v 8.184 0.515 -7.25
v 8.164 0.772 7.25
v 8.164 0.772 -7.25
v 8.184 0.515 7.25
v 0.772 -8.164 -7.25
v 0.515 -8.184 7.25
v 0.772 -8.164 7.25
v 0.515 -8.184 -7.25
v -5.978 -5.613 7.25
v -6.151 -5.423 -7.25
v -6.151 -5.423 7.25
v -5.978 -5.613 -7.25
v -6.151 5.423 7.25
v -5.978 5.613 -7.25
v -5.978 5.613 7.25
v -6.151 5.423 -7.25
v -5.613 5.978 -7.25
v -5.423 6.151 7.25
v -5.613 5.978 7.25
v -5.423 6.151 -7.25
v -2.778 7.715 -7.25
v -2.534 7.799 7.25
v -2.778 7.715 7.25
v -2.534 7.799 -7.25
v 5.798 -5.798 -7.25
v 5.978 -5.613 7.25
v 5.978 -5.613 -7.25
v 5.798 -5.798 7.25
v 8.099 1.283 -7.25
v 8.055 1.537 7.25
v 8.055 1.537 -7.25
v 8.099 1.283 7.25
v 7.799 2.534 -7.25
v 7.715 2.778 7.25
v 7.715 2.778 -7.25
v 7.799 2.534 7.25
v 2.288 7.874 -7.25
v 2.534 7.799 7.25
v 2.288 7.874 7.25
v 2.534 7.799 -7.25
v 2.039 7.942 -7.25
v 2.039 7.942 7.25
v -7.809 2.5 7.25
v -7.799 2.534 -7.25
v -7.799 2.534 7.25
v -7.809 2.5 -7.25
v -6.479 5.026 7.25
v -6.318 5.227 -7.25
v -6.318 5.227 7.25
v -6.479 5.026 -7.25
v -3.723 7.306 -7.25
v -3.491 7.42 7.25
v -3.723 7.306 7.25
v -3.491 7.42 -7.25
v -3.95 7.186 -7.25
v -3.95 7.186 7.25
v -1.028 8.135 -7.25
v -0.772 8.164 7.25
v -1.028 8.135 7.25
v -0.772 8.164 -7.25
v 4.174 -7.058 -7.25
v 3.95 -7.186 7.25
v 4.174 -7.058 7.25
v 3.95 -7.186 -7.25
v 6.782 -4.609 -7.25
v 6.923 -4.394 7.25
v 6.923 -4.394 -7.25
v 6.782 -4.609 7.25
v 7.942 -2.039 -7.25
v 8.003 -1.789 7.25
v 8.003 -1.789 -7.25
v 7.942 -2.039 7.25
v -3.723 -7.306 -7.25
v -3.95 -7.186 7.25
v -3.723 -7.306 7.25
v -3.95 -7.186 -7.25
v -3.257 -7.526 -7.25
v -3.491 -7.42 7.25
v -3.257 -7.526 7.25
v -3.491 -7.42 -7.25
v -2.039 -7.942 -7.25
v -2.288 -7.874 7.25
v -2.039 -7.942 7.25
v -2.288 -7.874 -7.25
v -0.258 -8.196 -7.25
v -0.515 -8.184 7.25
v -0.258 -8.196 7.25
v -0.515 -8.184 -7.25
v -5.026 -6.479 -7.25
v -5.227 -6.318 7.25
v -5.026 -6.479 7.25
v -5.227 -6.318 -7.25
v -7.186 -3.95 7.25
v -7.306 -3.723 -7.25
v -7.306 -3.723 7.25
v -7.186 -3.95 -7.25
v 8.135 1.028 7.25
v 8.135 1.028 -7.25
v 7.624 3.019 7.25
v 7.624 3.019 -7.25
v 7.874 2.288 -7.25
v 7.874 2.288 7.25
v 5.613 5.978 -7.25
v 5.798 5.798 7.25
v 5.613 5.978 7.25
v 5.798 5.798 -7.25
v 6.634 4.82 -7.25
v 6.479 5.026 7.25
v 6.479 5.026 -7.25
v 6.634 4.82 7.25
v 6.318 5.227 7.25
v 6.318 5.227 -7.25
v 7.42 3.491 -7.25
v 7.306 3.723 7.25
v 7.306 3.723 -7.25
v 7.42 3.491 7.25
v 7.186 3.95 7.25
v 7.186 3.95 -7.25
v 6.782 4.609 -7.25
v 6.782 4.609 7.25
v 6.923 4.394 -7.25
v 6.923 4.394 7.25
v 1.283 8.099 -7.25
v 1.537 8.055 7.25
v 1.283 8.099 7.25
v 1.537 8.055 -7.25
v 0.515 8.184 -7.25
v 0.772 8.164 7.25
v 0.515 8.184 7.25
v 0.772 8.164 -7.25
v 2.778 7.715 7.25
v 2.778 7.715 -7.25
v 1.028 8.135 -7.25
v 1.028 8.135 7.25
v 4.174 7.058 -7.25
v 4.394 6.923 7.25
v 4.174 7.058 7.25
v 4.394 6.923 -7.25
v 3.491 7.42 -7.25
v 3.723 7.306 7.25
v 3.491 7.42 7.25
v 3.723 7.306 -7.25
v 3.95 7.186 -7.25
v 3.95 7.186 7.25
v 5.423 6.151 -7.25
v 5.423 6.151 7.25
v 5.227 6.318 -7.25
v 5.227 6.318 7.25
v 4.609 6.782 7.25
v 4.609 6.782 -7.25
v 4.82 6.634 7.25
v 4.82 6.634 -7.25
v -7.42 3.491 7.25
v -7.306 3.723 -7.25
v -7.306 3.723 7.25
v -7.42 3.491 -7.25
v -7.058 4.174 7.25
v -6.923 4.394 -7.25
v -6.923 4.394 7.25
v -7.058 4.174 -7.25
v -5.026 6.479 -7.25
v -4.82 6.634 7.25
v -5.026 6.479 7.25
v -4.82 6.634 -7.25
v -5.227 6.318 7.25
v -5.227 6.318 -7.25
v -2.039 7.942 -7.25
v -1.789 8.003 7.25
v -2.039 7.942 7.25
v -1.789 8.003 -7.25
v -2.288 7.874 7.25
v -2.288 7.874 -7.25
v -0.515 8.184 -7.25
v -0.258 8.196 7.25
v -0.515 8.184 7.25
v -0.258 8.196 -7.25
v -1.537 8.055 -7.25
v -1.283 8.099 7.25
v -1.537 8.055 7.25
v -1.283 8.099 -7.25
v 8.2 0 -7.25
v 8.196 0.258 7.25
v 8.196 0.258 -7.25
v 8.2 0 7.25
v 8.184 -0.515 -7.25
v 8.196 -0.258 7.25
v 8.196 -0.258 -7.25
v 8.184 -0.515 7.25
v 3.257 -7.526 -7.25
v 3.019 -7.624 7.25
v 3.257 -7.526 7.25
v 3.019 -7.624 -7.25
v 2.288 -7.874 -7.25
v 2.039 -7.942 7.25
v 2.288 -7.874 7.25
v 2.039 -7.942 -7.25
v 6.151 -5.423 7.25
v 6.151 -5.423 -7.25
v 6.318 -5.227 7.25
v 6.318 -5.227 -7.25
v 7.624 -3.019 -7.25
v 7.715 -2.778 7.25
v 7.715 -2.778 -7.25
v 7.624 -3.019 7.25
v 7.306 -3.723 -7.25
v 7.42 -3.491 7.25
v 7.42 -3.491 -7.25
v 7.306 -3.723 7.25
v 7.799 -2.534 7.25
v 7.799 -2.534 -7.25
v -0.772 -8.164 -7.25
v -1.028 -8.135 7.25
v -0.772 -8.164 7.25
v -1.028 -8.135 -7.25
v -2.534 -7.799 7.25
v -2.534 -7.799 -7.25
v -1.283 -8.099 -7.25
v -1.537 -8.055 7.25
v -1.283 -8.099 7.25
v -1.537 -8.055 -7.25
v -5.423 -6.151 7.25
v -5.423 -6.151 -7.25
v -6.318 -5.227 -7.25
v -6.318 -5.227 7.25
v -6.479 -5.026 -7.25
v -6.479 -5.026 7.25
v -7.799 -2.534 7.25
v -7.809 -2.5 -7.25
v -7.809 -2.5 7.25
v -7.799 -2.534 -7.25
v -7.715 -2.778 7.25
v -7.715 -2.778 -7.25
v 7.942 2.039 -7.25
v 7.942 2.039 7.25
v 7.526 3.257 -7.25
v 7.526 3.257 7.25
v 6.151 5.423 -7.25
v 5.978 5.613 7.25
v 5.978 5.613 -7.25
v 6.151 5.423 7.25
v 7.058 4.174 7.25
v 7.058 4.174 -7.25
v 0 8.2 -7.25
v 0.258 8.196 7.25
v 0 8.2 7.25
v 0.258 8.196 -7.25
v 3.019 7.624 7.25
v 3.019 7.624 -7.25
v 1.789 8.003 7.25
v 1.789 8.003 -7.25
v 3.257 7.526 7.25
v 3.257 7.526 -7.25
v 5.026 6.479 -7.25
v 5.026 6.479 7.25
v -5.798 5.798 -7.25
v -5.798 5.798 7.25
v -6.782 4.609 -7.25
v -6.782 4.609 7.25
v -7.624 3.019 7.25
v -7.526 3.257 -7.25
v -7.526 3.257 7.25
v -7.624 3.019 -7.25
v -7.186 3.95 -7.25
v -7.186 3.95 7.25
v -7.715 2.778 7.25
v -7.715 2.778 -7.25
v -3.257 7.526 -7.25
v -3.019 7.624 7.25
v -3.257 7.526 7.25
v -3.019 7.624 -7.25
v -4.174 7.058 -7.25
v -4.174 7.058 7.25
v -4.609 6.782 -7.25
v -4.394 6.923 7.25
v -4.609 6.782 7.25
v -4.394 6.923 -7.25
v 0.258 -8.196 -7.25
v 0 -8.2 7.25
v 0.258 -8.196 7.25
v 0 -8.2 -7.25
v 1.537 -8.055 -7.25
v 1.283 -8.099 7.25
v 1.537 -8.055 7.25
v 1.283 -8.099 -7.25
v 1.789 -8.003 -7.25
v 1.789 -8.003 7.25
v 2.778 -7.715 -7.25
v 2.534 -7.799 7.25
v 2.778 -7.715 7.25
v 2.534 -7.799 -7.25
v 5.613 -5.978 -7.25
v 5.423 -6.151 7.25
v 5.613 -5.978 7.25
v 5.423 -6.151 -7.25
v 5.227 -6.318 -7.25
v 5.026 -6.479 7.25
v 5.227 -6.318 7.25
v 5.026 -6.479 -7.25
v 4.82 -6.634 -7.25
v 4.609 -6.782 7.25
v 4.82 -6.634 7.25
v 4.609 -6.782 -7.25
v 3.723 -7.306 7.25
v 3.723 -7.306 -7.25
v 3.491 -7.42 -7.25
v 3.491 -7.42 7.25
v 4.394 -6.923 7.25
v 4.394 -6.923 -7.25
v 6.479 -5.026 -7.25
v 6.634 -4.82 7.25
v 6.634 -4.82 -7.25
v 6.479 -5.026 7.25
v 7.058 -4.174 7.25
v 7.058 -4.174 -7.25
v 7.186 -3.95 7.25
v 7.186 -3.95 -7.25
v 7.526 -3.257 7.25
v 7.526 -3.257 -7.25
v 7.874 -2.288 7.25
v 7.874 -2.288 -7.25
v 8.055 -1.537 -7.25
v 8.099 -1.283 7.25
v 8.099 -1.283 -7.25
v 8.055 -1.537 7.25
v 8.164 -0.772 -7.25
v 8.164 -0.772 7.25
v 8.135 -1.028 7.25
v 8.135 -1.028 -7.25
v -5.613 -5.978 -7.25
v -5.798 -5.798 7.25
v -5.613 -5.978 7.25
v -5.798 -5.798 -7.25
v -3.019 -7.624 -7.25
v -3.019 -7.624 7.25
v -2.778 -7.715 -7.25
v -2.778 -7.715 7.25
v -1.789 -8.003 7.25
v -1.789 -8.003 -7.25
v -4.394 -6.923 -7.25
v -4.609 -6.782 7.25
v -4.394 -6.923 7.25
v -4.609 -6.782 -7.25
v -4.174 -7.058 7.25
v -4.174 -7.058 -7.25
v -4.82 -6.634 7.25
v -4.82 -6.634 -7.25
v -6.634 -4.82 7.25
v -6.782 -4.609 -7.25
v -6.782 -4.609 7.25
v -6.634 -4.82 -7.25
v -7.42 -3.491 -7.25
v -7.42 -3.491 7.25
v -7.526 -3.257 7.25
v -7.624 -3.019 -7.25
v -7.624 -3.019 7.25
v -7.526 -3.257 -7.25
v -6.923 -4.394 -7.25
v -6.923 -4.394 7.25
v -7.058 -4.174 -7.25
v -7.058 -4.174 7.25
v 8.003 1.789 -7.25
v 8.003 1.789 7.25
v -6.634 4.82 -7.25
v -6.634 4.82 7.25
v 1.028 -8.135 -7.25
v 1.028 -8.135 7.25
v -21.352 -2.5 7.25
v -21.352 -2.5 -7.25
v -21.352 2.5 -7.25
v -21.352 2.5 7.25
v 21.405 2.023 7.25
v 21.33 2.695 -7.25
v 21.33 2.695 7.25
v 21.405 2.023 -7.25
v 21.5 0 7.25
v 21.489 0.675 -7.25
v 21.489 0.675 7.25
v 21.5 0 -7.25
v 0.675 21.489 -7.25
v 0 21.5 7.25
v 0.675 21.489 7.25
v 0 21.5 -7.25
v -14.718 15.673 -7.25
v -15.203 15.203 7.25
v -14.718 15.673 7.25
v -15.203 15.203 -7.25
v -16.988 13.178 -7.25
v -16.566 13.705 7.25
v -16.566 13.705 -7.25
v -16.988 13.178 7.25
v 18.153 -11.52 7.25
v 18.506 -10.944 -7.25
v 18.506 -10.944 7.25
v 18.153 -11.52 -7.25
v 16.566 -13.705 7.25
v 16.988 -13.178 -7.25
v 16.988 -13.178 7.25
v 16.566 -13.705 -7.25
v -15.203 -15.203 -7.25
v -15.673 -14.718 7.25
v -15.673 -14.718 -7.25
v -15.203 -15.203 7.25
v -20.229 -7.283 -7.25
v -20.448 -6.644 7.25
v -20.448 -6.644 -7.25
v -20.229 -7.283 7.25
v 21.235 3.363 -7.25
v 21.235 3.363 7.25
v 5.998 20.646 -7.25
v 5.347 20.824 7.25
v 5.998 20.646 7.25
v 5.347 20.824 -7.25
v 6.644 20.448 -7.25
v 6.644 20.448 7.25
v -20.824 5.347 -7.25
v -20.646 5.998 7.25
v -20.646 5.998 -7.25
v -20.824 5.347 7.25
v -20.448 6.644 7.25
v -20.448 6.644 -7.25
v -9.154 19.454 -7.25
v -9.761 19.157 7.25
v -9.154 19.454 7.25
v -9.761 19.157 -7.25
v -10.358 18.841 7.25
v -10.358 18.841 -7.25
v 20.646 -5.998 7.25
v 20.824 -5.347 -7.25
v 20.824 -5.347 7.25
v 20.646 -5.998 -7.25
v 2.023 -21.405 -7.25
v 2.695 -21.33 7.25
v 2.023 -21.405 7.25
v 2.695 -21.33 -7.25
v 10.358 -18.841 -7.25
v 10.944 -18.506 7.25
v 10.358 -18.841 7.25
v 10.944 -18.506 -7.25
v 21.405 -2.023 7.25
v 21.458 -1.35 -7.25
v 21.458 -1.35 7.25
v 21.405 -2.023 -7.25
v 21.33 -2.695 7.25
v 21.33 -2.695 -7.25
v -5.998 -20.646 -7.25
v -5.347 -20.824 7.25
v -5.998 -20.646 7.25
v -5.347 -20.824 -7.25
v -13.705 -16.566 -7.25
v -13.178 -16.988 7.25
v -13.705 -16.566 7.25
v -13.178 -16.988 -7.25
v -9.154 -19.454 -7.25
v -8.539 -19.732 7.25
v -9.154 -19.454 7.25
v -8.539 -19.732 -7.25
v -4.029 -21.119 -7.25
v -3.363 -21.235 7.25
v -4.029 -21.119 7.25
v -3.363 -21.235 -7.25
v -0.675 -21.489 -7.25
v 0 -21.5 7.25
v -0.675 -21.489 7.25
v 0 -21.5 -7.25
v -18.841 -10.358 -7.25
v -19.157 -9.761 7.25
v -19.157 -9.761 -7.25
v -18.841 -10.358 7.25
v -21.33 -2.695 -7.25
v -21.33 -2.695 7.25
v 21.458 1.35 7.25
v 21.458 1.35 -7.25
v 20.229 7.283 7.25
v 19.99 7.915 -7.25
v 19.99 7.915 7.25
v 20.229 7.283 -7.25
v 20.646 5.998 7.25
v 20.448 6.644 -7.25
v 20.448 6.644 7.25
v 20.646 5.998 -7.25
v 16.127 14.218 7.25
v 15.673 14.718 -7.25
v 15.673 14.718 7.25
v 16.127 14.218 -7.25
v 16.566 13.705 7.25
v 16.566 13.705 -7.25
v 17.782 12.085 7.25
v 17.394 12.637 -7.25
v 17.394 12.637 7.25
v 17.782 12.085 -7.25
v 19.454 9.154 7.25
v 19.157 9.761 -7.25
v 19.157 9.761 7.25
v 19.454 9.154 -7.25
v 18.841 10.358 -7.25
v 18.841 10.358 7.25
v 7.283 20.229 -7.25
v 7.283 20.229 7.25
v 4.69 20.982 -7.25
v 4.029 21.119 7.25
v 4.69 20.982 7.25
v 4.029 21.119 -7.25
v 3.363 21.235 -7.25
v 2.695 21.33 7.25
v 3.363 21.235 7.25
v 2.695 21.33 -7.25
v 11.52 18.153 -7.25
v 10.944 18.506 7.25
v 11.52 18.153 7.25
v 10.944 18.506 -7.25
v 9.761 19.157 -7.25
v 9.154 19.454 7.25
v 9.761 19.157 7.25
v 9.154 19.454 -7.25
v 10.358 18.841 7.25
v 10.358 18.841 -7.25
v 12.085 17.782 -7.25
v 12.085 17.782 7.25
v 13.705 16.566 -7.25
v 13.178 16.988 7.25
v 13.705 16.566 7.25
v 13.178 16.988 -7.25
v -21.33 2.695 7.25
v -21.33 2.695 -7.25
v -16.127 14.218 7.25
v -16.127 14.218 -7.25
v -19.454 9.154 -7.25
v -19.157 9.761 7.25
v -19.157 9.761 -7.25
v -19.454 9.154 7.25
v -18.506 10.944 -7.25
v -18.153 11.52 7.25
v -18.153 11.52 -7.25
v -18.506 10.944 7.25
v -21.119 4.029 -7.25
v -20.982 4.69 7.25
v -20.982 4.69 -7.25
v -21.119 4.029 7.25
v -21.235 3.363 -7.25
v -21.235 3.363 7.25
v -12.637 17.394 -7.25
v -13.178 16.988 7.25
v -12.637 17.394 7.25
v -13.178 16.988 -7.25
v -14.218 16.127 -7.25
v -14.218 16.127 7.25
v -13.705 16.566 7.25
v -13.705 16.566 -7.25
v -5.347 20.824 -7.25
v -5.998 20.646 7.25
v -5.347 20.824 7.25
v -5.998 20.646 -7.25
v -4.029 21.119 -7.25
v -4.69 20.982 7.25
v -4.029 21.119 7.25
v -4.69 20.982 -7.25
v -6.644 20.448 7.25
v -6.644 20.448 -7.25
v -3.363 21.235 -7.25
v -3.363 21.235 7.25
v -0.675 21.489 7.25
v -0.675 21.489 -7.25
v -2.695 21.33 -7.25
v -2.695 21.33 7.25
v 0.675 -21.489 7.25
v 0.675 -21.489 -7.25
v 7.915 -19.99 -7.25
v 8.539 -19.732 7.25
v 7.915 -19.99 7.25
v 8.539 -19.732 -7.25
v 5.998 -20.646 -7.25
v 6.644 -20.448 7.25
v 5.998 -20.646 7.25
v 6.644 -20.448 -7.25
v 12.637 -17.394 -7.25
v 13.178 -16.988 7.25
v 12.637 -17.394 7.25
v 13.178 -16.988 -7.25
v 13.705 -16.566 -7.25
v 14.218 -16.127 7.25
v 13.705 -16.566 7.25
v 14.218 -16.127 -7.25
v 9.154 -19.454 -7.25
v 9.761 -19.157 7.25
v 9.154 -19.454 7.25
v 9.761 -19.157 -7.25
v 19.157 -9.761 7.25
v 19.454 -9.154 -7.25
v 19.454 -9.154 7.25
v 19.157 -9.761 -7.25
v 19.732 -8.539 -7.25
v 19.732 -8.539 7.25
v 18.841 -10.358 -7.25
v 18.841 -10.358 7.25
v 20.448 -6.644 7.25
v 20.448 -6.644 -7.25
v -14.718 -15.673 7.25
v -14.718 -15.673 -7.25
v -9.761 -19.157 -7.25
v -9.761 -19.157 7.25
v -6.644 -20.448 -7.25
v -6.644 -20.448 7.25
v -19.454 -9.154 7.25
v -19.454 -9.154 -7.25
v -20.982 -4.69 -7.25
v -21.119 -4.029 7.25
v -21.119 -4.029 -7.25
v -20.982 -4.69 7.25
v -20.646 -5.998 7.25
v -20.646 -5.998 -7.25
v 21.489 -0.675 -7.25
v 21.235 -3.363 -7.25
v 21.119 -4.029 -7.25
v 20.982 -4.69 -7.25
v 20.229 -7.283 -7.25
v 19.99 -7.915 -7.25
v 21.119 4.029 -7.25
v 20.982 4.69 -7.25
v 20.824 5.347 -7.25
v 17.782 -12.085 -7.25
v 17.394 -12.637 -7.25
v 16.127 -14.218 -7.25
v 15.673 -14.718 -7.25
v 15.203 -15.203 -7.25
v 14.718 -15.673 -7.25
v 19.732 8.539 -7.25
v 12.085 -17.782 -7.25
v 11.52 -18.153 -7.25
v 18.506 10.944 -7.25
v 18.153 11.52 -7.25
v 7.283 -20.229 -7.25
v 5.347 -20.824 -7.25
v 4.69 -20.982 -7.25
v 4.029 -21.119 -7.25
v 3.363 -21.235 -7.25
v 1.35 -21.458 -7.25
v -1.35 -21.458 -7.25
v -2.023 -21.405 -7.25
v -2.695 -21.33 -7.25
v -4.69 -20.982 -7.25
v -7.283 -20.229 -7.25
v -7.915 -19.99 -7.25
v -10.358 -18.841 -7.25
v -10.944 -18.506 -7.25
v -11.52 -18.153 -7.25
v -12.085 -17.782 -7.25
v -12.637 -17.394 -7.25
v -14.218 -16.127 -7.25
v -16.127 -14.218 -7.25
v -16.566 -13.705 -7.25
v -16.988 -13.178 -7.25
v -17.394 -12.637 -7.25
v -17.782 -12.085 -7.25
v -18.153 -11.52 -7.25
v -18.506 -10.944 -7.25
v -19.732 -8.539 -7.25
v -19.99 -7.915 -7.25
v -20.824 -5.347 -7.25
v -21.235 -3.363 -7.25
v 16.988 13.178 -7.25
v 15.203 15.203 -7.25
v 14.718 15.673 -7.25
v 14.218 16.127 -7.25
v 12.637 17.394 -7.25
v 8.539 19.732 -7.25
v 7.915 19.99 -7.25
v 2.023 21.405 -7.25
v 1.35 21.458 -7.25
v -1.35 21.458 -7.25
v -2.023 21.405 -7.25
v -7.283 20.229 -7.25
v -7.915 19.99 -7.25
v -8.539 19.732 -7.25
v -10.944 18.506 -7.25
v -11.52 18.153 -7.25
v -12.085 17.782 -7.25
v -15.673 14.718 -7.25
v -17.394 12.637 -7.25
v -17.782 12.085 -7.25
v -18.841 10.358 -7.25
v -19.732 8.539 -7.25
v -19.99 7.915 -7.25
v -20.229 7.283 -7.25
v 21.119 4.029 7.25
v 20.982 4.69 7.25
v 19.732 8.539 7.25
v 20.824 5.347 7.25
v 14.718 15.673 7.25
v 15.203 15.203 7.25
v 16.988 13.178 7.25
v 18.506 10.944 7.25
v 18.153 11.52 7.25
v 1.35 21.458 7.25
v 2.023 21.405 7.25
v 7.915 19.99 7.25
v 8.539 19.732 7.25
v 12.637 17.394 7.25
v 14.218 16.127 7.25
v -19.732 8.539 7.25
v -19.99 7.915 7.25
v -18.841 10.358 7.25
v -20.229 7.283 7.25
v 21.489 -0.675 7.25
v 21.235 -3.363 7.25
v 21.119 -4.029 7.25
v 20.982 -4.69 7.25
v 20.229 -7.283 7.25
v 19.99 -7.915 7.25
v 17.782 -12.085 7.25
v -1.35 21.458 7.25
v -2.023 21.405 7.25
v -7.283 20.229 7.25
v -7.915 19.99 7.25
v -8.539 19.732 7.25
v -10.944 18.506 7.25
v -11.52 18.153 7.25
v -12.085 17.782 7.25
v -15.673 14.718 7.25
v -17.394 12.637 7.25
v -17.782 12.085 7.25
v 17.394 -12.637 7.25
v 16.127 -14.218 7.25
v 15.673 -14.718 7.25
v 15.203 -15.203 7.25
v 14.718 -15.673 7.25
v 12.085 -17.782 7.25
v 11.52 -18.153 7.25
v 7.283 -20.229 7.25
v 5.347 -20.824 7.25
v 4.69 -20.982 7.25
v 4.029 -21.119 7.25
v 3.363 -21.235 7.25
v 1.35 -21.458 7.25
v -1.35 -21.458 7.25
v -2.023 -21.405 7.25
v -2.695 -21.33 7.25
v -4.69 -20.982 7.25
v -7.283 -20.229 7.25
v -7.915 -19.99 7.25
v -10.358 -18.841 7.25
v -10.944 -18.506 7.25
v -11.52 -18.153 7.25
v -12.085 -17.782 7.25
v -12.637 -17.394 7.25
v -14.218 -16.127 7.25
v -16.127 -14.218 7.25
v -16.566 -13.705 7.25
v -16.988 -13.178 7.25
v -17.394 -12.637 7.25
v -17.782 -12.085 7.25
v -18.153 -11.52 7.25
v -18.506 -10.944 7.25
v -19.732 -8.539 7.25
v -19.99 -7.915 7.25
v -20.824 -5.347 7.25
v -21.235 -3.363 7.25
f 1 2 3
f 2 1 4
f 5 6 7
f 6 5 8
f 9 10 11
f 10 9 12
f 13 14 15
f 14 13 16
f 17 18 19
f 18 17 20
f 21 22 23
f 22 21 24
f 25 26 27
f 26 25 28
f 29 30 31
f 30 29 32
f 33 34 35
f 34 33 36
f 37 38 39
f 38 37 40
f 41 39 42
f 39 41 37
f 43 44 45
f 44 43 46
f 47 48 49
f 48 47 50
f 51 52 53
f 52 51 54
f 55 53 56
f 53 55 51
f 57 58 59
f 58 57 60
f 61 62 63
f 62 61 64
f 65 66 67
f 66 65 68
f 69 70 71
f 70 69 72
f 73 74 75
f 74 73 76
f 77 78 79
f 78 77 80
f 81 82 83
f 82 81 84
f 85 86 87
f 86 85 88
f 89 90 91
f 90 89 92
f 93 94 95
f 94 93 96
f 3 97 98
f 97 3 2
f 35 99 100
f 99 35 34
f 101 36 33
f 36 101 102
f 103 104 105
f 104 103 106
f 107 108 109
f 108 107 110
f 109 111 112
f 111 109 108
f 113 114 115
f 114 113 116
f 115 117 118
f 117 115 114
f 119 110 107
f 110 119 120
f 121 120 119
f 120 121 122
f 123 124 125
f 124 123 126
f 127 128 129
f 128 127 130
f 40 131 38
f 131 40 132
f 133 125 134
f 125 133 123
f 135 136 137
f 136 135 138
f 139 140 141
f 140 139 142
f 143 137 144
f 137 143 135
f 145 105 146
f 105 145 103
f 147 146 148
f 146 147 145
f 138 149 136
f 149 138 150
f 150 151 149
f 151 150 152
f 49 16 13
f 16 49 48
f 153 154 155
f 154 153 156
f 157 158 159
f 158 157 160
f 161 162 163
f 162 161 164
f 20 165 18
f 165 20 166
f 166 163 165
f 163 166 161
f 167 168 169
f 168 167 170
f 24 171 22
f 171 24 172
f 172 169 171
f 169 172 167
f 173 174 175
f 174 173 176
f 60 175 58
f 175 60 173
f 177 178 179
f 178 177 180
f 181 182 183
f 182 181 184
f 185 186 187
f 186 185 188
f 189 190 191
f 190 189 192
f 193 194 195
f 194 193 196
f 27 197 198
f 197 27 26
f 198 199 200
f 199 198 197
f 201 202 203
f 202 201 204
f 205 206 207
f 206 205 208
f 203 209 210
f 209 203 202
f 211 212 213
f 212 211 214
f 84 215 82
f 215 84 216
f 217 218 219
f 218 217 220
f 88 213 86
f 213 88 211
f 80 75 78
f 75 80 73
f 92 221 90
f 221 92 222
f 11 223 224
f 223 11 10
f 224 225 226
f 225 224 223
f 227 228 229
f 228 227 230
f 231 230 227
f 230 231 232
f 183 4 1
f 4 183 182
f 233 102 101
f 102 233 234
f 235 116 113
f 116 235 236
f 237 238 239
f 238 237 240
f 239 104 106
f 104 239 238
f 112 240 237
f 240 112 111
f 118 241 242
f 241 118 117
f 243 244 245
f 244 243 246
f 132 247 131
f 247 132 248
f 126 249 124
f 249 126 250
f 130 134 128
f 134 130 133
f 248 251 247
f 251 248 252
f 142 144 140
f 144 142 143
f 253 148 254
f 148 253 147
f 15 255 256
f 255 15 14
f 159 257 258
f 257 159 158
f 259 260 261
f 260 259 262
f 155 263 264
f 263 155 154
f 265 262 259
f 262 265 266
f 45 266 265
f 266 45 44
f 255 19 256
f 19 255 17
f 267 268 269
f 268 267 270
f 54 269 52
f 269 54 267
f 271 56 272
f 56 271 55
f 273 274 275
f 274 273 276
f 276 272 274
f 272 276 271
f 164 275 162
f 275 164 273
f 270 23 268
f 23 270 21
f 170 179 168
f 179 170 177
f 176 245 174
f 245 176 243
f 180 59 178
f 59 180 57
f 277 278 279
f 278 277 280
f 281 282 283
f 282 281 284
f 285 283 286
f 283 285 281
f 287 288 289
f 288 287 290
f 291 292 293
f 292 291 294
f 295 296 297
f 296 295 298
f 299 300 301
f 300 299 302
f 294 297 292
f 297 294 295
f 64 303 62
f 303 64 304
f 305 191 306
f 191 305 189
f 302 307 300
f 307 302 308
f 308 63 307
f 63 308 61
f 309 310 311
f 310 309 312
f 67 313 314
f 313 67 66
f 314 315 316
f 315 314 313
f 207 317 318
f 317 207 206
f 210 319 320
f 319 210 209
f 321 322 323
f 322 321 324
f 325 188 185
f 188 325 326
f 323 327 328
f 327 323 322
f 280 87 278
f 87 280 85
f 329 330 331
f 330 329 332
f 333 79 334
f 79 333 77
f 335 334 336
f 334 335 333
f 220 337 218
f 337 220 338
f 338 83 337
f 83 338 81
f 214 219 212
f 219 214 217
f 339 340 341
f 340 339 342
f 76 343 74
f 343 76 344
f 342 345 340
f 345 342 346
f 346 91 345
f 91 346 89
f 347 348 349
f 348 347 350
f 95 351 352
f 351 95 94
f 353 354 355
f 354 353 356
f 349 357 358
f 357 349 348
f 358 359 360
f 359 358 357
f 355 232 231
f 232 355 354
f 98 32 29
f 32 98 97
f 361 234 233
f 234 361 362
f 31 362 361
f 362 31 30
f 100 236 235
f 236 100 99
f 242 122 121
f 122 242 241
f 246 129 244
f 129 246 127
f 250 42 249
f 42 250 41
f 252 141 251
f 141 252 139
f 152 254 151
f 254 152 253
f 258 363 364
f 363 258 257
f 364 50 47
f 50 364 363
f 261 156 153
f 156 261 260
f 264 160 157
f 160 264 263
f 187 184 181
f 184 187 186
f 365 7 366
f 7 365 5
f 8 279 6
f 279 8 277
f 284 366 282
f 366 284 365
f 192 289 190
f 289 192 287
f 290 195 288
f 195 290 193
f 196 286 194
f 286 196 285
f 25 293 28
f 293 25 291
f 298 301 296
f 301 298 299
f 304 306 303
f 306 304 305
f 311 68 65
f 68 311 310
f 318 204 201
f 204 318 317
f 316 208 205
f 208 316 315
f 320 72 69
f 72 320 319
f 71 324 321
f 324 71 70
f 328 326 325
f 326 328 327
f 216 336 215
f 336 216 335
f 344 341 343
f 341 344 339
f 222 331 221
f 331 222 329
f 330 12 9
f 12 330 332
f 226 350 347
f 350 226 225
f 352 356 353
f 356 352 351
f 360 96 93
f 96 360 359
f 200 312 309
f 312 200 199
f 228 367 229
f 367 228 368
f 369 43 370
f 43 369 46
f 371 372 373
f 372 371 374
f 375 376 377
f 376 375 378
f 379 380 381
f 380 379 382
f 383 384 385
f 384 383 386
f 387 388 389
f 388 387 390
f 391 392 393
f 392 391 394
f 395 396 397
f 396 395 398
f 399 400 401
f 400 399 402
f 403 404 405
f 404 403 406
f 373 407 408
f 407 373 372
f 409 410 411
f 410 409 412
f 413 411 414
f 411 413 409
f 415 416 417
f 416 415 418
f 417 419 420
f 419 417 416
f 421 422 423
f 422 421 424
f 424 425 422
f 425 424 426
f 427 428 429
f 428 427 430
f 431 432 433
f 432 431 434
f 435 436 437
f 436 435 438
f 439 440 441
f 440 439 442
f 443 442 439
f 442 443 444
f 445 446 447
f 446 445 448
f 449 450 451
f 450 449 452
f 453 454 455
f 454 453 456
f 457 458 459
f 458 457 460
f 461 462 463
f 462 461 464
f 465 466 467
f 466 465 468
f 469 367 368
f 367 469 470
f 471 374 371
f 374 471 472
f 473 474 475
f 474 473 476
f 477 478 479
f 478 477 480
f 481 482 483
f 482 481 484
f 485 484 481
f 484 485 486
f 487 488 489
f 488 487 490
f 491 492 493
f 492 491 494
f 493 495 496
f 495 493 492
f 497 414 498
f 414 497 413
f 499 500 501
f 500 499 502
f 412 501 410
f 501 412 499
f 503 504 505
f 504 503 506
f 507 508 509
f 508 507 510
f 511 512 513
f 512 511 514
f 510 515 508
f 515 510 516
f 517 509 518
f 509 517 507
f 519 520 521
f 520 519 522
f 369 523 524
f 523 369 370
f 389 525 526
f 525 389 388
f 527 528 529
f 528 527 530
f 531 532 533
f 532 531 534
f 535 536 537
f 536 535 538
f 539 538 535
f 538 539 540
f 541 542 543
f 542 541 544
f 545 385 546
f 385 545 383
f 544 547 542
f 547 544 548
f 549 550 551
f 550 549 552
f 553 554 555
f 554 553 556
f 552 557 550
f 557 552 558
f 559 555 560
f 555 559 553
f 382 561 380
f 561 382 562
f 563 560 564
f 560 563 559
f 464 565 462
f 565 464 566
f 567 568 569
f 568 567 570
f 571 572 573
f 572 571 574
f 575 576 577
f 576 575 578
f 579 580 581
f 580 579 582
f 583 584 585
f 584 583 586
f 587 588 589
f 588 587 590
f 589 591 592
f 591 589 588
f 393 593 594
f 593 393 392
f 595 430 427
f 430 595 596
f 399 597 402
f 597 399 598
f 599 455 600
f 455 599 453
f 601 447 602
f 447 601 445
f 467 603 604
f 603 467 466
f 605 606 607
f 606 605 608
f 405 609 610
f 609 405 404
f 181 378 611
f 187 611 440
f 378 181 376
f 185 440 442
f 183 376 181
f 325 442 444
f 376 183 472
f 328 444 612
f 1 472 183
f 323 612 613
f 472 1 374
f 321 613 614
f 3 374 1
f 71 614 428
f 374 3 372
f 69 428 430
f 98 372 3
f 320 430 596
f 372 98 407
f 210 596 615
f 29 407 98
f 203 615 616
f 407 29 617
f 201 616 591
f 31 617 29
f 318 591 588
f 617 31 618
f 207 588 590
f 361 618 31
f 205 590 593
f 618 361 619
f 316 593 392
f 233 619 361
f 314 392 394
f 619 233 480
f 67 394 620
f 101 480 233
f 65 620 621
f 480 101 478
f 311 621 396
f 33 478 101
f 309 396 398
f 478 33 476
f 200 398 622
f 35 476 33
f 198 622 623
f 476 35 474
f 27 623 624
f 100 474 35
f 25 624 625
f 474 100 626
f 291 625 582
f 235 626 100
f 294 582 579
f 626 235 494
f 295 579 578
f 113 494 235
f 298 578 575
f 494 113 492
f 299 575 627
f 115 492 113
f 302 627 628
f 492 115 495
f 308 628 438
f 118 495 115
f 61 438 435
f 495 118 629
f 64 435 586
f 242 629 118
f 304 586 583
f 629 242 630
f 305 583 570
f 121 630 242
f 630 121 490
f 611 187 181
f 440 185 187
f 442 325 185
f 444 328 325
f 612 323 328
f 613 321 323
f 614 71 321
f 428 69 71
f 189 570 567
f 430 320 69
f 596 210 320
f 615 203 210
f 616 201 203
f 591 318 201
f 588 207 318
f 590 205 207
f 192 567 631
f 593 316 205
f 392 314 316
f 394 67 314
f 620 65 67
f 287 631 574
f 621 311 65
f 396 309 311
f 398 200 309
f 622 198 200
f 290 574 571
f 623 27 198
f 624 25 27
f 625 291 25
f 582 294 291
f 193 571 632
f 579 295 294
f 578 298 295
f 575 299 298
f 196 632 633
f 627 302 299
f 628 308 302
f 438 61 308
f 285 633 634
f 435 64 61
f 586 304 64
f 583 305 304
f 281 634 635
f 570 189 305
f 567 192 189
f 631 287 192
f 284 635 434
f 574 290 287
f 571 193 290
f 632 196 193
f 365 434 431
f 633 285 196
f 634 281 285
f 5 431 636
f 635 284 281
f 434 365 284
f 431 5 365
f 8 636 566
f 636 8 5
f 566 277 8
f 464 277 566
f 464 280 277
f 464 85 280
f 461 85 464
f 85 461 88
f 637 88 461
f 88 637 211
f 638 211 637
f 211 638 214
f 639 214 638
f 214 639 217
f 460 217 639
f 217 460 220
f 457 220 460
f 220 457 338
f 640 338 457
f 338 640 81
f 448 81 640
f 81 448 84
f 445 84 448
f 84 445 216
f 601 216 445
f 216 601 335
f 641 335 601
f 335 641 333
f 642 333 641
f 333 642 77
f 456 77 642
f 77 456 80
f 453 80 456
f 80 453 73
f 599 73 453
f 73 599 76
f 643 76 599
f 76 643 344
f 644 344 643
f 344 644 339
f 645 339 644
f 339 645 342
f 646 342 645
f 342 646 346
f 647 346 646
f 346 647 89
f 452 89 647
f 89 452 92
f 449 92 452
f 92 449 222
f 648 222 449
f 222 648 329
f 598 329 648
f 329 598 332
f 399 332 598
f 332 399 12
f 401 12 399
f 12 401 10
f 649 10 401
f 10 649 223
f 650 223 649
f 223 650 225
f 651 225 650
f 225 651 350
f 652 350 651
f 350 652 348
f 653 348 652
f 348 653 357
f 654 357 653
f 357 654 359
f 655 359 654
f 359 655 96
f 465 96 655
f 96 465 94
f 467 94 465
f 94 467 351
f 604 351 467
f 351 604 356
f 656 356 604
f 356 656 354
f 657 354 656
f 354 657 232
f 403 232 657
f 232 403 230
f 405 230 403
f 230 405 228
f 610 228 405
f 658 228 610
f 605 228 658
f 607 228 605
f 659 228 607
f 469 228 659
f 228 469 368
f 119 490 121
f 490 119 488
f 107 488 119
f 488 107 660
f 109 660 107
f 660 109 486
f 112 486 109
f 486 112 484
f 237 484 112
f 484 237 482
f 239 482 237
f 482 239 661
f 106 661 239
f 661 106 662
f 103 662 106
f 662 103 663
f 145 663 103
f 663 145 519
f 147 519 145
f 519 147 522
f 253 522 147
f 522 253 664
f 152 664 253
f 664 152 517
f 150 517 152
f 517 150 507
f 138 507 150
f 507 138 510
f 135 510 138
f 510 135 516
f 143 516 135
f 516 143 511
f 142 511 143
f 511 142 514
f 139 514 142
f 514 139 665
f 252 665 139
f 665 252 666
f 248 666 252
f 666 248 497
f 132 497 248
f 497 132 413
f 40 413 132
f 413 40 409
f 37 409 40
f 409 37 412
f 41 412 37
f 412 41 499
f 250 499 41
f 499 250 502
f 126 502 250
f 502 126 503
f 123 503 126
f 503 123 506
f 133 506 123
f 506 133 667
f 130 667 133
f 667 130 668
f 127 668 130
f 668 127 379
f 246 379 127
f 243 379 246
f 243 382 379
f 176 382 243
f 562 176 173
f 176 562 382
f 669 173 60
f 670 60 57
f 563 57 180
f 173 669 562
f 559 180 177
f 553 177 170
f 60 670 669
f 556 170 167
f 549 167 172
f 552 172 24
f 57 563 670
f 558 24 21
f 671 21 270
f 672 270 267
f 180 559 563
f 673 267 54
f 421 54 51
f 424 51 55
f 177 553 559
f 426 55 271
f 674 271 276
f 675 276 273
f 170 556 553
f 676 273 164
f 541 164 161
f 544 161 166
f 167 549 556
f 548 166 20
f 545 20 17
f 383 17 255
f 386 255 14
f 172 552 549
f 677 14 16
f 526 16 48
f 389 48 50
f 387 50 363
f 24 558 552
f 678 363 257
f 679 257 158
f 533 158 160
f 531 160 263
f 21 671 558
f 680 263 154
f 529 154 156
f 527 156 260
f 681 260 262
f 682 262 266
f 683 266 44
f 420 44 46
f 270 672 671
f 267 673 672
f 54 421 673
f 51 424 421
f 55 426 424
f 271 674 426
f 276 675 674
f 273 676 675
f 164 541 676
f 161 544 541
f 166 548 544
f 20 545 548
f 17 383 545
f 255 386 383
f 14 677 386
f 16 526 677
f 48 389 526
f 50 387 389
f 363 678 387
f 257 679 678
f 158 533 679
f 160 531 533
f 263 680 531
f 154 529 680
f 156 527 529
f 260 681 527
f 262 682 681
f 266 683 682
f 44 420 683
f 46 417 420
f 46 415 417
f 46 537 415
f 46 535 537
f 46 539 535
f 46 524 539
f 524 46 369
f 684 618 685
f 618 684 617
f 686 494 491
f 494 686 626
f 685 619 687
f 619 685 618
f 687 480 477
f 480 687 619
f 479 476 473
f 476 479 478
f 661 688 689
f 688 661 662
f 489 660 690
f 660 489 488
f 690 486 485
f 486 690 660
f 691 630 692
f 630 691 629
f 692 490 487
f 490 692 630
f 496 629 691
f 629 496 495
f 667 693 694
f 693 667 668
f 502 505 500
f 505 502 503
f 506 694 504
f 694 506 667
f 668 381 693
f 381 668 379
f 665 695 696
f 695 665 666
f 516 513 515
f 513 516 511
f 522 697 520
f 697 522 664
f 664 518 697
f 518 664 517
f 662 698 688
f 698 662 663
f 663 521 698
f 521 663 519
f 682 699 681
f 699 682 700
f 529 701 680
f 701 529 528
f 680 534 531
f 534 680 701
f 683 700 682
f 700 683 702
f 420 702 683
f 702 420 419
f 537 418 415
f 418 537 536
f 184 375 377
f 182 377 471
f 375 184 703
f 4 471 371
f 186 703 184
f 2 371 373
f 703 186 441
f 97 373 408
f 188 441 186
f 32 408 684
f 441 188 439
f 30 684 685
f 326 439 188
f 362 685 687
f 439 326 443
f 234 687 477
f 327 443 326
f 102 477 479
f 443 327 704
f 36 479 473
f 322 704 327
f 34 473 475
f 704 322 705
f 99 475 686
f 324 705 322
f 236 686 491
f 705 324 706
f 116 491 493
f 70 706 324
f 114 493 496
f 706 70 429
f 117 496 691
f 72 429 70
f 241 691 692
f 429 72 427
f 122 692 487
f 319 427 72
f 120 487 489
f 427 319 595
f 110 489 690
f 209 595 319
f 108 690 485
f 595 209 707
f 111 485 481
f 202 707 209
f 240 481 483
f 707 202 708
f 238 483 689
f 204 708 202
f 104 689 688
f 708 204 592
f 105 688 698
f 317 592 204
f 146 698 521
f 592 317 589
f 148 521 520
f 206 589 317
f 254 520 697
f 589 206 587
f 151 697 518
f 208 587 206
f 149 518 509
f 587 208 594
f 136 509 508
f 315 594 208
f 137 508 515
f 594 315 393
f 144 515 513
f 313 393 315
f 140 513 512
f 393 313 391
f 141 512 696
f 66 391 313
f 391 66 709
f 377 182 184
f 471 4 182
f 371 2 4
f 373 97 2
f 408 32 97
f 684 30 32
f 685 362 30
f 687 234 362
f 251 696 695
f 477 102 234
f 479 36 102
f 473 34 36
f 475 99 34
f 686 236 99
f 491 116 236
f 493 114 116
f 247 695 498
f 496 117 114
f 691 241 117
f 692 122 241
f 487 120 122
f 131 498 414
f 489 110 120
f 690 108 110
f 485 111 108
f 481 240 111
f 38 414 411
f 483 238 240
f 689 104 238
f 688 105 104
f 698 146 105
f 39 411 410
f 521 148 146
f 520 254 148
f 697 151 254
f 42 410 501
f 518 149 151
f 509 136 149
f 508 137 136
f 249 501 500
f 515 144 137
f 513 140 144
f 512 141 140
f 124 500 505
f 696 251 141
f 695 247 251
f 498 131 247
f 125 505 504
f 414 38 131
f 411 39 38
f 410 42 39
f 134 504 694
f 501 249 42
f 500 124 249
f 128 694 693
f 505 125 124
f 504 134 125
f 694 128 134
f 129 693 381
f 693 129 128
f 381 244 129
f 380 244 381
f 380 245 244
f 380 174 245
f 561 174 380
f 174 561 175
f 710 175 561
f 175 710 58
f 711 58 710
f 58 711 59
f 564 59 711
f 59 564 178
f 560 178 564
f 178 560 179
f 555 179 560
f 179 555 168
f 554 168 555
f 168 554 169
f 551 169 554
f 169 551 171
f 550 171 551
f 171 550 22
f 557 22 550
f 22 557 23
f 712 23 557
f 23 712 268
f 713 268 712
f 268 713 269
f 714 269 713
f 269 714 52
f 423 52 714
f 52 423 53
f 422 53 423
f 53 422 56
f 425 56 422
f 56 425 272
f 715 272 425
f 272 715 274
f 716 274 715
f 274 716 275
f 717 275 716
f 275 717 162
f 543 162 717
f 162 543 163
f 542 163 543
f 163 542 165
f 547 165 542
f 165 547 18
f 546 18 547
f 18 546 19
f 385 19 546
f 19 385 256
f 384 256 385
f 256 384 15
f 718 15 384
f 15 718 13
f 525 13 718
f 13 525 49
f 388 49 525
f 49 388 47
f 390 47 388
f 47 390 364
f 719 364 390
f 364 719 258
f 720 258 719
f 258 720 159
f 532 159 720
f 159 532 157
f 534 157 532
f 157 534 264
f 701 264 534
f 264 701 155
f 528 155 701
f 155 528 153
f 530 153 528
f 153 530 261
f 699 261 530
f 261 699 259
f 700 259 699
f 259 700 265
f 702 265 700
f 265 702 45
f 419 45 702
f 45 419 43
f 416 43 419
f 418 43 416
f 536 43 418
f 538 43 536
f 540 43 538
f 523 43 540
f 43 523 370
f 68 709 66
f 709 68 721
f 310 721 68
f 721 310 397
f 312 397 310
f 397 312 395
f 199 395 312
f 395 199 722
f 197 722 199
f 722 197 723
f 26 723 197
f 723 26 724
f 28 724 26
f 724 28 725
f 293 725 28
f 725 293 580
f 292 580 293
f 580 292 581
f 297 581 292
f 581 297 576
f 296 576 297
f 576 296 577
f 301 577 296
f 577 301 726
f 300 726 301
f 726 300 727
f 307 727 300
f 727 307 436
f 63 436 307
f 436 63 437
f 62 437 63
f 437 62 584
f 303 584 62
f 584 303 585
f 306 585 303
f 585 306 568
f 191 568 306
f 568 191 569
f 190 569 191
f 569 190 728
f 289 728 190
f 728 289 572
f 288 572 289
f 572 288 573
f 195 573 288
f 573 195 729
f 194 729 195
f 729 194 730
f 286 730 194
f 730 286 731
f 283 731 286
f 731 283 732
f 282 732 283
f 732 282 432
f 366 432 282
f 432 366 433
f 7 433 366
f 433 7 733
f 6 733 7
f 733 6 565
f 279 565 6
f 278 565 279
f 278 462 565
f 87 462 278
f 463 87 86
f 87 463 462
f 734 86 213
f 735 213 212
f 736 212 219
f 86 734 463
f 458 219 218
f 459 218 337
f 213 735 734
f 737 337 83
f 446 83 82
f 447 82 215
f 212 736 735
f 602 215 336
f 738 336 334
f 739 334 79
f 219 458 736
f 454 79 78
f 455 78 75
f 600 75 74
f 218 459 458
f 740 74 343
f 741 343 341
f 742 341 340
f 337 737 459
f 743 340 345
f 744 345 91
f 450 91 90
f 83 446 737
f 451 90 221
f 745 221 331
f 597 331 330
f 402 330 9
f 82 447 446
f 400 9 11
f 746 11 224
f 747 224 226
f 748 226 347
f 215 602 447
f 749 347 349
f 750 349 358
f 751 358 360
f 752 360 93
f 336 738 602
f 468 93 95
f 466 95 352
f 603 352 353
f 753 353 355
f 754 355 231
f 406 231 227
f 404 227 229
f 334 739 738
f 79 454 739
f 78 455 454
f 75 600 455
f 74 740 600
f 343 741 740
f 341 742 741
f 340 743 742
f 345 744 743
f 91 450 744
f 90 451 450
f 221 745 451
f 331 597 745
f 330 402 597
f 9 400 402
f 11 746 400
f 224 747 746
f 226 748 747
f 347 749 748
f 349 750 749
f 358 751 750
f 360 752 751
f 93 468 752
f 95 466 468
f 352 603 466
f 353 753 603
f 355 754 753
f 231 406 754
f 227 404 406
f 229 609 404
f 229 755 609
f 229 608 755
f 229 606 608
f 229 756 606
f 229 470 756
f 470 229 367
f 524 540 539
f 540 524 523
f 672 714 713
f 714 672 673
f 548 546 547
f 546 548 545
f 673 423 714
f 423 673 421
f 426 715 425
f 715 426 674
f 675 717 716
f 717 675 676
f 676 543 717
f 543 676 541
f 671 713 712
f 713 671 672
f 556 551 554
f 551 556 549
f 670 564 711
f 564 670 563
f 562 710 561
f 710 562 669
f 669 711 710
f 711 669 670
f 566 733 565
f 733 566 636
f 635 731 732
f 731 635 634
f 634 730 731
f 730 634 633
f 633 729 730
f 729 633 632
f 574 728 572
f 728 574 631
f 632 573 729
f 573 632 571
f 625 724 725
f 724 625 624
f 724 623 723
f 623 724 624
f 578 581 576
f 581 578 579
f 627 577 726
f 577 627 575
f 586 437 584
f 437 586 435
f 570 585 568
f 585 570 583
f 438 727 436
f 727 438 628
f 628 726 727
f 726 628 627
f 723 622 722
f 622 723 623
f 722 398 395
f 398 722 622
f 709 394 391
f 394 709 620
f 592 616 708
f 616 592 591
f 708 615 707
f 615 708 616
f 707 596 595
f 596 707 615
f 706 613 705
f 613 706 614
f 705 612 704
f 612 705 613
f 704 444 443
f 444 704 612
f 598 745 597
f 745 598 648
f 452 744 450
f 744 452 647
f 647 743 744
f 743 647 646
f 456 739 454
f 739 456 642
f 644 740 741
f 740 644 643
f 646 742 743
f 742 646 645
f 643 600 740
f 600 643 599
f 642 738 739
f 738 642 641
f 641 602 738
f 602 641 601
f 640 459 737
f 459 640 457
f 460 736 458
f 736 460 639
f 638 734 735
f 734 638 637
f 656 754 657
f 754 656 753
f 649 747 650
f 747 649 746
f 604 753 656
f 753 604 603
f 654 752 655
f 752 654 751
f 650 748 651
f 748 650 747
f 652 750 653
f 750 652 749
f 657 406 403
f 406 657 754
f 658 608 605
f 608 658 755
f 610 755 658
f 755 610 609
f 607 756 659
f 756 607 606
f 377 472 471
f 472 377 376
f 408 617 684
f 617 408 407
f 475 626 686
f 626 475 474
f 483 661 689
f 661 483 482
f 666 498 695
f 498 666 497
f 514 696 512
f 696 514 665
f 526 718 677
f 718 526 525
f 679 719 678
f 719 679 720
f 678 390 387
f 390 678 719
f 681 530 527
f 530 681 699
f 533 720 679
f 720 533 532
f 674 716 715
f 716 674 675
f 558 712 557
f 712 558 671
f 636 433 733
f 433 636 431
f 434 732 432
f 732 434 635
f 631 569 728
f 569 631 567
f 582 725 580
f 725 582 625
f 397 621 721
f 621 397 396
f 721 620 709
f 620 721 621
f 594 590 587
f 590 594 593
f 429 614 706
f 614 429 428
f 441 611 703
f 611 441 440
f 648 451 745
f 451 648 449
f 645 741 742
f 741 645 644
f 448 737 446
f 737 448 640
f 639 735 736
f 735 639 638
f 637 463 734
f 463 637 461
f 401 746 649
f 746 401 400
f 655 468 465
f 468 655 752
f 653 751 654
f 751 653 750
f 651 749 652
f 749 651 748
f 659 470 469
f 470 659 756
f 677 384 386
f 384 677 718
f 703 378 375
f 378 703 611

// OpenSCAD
//
// Drill press adapter for micro air grinder for use in 
// SMI drill press
// D. Rowntree 17Nov15
//

// Configure
od=43;
id=15.4;
clearance=0.5;
slot_w=5;
height=29;
fn=200;

// render top level
body();

module body()
{
    difference(){
        bulk();
        bulk_remove();
    }
}

module bulk()
{
    cylinder(h=height/2, r=od/2, center = true, $fn=fn);
}

module bulk_remove()
{
    union(){
        cylinder(h=4+height/2, r=id/2+clearance, center=true, $fn=fn);
        translate([-od/4,0,0]) cube([2+od/2,slot_w,4+height/2], center=true);
    }
   
}
        
